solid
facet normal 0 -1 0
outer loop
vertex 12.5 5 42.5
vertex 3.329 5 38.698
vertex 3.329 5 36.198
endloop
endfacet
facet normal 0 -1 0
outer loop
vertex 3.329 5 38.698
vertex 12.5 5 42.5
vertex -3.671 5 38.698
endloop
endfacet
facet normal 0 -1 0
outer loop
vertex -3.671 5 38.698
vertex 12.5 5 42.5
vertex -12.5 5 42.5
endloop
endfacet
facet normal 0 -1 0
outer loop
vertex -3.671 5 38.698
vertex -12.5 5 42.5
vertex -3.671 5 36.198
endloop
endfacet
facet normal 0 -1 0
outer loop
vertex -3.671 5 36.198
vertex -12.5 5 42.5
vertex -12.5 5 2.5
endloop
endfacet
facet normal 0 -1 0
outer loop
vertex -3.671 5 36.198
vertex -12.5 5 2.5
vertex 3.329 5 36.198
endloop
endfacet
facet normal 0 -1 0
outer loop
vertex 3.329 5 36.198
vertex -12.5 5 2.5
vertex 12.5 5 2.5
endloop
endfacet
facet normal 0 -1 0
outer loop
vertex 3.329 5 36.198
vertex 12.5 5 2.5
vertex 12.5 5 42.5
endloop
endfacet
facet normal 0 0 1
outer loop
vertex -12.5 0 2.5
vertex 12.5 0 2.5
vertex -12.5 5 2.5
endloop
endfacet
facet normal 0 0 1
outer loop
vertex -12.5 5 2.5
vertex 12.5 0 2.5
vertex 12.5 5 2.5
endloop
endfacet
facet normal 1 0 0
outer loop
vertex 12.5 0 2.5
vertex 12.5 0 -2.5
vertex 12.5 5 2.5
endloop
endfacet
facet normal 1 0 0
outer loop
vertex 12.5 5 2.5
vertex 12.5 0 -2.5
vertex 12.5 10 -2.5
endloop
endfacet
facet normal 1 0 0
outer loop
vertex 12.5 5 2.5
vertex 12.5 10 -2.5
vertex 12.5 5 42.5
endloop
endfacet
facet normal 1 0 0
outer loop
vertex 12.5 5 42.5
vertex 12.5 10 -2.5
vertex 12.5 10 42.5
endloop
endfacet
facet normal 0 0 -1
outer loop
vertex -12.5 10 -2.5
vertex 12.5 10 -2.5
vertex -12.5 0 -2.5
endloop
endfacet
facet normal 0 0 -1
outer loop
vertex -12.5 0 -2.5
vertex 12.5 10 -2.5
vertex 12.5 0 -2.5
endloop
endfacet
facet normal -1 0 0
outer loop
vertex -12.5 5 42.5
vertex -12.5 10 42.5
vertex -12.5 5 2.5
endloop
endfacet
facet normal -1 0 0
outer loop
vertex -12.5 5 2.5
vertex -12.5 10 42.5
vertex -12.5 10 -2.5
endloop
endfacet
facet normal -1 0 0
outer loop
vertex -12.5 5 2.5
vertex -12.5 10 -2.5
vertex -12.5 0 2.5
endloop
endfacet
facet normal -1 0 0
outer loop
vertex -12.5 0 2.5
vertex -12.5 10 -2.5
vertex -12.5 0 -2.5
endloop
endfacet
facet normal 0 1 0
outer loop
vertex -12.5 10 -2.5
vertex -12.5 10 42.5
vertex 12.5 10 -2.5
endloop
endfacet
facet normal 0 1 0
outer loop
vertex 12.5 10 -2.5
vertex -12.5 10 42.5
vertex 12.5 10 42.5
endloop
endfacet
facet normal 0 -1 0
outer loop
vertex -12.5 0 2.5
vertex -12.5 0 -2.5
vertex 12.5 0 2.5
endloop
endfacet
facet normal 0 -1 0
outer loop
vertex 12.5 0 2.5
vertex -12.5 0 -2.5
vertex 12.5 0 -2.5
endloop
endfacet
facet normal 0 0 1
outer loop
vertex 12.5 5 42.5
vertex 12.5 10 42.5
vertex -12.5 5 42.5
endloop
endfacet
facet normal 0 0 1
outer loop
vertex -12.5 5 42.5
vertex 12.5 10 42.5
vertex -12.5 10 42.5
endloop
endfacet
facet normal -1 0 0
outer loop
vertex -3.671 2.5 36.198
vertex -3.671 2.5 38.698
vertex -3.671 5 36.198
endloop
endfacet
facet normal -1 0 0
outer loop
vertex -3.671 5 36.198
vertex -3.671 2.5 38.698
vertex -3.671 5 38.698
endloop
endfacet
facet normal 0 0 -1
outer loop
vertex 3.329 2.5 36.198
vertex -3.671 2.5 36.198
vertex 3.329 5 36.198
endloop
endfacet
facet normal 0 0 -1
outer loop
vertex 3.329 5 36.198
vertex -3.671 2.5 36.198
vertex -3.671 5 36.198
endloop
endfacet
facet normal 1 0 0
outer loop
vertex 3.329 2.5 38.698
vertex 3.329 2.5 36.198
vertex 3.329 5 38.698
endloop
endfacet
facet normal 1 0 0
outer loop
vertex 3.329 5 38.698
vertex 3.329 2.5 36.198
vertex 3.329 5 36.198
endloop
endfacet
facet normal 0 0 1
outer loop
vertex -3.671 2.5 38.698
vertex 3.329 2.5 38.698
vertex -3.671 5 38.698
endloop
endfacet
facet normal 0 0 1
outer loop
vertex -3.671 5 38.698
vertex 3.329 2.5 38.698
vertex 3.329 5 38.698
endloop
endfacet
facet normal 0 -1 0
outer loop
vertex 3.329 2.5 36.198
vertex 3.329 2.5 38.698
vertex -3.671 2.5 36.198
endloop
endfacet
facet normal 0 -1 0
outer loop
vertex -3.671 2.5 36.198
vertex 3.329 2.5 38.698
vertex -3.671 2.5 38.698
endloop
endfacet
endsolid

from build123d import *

# Parameters (mm, degrees)
SKETCH1_W           = 25
SKETCH1_H           = 5
BOSS_EXTRUDE1_DEPTH = 10
SKETCH2_W           = 25
SKETCH2_H           = 5
BOSS_EXTRUDE2_DEPTH = 40
SKETCH3_W           = 7
SKETCH3_H           = 2.5
BOSS_EXTRUDE3_DEPTH = 2.5


with BuildPart() as part:
    # Sketch1 → Boss-Extrude1 (new body)
    with BuildSketch(Plane(origin=(0, 0, 0), x_dir=(1, 0, 0), z_dir=(0, 1, 0))):
        Rectangle(SKETCH1_W, SKETCH1_H)
    extrude(amount=BOSS_EXTRUDE1_DEPTH)

    # Sketch2 → Boss-Extrude2 (add)
    with BuildSketch(Plane.XY.offset(2.5)):
        with Locations((0, 7.5)):
            Rectangle(SKETCH2_W, SKETCH2_H)
    extrude(amount=BOSS_EXTRUDE2_DEPTH)

    # Sketch3 → Boss-Extrude3 (add)
    with BuildSketch(Plane.XZ.offset(-5)):
        with Locations((-0.17068016, 37.447744065)):
            Rectangle(SKETCH3_W, SKETCH3_H)
    extrude(amount=BOSS_EXTRUDE3_DEPTH)


solid = part.part
